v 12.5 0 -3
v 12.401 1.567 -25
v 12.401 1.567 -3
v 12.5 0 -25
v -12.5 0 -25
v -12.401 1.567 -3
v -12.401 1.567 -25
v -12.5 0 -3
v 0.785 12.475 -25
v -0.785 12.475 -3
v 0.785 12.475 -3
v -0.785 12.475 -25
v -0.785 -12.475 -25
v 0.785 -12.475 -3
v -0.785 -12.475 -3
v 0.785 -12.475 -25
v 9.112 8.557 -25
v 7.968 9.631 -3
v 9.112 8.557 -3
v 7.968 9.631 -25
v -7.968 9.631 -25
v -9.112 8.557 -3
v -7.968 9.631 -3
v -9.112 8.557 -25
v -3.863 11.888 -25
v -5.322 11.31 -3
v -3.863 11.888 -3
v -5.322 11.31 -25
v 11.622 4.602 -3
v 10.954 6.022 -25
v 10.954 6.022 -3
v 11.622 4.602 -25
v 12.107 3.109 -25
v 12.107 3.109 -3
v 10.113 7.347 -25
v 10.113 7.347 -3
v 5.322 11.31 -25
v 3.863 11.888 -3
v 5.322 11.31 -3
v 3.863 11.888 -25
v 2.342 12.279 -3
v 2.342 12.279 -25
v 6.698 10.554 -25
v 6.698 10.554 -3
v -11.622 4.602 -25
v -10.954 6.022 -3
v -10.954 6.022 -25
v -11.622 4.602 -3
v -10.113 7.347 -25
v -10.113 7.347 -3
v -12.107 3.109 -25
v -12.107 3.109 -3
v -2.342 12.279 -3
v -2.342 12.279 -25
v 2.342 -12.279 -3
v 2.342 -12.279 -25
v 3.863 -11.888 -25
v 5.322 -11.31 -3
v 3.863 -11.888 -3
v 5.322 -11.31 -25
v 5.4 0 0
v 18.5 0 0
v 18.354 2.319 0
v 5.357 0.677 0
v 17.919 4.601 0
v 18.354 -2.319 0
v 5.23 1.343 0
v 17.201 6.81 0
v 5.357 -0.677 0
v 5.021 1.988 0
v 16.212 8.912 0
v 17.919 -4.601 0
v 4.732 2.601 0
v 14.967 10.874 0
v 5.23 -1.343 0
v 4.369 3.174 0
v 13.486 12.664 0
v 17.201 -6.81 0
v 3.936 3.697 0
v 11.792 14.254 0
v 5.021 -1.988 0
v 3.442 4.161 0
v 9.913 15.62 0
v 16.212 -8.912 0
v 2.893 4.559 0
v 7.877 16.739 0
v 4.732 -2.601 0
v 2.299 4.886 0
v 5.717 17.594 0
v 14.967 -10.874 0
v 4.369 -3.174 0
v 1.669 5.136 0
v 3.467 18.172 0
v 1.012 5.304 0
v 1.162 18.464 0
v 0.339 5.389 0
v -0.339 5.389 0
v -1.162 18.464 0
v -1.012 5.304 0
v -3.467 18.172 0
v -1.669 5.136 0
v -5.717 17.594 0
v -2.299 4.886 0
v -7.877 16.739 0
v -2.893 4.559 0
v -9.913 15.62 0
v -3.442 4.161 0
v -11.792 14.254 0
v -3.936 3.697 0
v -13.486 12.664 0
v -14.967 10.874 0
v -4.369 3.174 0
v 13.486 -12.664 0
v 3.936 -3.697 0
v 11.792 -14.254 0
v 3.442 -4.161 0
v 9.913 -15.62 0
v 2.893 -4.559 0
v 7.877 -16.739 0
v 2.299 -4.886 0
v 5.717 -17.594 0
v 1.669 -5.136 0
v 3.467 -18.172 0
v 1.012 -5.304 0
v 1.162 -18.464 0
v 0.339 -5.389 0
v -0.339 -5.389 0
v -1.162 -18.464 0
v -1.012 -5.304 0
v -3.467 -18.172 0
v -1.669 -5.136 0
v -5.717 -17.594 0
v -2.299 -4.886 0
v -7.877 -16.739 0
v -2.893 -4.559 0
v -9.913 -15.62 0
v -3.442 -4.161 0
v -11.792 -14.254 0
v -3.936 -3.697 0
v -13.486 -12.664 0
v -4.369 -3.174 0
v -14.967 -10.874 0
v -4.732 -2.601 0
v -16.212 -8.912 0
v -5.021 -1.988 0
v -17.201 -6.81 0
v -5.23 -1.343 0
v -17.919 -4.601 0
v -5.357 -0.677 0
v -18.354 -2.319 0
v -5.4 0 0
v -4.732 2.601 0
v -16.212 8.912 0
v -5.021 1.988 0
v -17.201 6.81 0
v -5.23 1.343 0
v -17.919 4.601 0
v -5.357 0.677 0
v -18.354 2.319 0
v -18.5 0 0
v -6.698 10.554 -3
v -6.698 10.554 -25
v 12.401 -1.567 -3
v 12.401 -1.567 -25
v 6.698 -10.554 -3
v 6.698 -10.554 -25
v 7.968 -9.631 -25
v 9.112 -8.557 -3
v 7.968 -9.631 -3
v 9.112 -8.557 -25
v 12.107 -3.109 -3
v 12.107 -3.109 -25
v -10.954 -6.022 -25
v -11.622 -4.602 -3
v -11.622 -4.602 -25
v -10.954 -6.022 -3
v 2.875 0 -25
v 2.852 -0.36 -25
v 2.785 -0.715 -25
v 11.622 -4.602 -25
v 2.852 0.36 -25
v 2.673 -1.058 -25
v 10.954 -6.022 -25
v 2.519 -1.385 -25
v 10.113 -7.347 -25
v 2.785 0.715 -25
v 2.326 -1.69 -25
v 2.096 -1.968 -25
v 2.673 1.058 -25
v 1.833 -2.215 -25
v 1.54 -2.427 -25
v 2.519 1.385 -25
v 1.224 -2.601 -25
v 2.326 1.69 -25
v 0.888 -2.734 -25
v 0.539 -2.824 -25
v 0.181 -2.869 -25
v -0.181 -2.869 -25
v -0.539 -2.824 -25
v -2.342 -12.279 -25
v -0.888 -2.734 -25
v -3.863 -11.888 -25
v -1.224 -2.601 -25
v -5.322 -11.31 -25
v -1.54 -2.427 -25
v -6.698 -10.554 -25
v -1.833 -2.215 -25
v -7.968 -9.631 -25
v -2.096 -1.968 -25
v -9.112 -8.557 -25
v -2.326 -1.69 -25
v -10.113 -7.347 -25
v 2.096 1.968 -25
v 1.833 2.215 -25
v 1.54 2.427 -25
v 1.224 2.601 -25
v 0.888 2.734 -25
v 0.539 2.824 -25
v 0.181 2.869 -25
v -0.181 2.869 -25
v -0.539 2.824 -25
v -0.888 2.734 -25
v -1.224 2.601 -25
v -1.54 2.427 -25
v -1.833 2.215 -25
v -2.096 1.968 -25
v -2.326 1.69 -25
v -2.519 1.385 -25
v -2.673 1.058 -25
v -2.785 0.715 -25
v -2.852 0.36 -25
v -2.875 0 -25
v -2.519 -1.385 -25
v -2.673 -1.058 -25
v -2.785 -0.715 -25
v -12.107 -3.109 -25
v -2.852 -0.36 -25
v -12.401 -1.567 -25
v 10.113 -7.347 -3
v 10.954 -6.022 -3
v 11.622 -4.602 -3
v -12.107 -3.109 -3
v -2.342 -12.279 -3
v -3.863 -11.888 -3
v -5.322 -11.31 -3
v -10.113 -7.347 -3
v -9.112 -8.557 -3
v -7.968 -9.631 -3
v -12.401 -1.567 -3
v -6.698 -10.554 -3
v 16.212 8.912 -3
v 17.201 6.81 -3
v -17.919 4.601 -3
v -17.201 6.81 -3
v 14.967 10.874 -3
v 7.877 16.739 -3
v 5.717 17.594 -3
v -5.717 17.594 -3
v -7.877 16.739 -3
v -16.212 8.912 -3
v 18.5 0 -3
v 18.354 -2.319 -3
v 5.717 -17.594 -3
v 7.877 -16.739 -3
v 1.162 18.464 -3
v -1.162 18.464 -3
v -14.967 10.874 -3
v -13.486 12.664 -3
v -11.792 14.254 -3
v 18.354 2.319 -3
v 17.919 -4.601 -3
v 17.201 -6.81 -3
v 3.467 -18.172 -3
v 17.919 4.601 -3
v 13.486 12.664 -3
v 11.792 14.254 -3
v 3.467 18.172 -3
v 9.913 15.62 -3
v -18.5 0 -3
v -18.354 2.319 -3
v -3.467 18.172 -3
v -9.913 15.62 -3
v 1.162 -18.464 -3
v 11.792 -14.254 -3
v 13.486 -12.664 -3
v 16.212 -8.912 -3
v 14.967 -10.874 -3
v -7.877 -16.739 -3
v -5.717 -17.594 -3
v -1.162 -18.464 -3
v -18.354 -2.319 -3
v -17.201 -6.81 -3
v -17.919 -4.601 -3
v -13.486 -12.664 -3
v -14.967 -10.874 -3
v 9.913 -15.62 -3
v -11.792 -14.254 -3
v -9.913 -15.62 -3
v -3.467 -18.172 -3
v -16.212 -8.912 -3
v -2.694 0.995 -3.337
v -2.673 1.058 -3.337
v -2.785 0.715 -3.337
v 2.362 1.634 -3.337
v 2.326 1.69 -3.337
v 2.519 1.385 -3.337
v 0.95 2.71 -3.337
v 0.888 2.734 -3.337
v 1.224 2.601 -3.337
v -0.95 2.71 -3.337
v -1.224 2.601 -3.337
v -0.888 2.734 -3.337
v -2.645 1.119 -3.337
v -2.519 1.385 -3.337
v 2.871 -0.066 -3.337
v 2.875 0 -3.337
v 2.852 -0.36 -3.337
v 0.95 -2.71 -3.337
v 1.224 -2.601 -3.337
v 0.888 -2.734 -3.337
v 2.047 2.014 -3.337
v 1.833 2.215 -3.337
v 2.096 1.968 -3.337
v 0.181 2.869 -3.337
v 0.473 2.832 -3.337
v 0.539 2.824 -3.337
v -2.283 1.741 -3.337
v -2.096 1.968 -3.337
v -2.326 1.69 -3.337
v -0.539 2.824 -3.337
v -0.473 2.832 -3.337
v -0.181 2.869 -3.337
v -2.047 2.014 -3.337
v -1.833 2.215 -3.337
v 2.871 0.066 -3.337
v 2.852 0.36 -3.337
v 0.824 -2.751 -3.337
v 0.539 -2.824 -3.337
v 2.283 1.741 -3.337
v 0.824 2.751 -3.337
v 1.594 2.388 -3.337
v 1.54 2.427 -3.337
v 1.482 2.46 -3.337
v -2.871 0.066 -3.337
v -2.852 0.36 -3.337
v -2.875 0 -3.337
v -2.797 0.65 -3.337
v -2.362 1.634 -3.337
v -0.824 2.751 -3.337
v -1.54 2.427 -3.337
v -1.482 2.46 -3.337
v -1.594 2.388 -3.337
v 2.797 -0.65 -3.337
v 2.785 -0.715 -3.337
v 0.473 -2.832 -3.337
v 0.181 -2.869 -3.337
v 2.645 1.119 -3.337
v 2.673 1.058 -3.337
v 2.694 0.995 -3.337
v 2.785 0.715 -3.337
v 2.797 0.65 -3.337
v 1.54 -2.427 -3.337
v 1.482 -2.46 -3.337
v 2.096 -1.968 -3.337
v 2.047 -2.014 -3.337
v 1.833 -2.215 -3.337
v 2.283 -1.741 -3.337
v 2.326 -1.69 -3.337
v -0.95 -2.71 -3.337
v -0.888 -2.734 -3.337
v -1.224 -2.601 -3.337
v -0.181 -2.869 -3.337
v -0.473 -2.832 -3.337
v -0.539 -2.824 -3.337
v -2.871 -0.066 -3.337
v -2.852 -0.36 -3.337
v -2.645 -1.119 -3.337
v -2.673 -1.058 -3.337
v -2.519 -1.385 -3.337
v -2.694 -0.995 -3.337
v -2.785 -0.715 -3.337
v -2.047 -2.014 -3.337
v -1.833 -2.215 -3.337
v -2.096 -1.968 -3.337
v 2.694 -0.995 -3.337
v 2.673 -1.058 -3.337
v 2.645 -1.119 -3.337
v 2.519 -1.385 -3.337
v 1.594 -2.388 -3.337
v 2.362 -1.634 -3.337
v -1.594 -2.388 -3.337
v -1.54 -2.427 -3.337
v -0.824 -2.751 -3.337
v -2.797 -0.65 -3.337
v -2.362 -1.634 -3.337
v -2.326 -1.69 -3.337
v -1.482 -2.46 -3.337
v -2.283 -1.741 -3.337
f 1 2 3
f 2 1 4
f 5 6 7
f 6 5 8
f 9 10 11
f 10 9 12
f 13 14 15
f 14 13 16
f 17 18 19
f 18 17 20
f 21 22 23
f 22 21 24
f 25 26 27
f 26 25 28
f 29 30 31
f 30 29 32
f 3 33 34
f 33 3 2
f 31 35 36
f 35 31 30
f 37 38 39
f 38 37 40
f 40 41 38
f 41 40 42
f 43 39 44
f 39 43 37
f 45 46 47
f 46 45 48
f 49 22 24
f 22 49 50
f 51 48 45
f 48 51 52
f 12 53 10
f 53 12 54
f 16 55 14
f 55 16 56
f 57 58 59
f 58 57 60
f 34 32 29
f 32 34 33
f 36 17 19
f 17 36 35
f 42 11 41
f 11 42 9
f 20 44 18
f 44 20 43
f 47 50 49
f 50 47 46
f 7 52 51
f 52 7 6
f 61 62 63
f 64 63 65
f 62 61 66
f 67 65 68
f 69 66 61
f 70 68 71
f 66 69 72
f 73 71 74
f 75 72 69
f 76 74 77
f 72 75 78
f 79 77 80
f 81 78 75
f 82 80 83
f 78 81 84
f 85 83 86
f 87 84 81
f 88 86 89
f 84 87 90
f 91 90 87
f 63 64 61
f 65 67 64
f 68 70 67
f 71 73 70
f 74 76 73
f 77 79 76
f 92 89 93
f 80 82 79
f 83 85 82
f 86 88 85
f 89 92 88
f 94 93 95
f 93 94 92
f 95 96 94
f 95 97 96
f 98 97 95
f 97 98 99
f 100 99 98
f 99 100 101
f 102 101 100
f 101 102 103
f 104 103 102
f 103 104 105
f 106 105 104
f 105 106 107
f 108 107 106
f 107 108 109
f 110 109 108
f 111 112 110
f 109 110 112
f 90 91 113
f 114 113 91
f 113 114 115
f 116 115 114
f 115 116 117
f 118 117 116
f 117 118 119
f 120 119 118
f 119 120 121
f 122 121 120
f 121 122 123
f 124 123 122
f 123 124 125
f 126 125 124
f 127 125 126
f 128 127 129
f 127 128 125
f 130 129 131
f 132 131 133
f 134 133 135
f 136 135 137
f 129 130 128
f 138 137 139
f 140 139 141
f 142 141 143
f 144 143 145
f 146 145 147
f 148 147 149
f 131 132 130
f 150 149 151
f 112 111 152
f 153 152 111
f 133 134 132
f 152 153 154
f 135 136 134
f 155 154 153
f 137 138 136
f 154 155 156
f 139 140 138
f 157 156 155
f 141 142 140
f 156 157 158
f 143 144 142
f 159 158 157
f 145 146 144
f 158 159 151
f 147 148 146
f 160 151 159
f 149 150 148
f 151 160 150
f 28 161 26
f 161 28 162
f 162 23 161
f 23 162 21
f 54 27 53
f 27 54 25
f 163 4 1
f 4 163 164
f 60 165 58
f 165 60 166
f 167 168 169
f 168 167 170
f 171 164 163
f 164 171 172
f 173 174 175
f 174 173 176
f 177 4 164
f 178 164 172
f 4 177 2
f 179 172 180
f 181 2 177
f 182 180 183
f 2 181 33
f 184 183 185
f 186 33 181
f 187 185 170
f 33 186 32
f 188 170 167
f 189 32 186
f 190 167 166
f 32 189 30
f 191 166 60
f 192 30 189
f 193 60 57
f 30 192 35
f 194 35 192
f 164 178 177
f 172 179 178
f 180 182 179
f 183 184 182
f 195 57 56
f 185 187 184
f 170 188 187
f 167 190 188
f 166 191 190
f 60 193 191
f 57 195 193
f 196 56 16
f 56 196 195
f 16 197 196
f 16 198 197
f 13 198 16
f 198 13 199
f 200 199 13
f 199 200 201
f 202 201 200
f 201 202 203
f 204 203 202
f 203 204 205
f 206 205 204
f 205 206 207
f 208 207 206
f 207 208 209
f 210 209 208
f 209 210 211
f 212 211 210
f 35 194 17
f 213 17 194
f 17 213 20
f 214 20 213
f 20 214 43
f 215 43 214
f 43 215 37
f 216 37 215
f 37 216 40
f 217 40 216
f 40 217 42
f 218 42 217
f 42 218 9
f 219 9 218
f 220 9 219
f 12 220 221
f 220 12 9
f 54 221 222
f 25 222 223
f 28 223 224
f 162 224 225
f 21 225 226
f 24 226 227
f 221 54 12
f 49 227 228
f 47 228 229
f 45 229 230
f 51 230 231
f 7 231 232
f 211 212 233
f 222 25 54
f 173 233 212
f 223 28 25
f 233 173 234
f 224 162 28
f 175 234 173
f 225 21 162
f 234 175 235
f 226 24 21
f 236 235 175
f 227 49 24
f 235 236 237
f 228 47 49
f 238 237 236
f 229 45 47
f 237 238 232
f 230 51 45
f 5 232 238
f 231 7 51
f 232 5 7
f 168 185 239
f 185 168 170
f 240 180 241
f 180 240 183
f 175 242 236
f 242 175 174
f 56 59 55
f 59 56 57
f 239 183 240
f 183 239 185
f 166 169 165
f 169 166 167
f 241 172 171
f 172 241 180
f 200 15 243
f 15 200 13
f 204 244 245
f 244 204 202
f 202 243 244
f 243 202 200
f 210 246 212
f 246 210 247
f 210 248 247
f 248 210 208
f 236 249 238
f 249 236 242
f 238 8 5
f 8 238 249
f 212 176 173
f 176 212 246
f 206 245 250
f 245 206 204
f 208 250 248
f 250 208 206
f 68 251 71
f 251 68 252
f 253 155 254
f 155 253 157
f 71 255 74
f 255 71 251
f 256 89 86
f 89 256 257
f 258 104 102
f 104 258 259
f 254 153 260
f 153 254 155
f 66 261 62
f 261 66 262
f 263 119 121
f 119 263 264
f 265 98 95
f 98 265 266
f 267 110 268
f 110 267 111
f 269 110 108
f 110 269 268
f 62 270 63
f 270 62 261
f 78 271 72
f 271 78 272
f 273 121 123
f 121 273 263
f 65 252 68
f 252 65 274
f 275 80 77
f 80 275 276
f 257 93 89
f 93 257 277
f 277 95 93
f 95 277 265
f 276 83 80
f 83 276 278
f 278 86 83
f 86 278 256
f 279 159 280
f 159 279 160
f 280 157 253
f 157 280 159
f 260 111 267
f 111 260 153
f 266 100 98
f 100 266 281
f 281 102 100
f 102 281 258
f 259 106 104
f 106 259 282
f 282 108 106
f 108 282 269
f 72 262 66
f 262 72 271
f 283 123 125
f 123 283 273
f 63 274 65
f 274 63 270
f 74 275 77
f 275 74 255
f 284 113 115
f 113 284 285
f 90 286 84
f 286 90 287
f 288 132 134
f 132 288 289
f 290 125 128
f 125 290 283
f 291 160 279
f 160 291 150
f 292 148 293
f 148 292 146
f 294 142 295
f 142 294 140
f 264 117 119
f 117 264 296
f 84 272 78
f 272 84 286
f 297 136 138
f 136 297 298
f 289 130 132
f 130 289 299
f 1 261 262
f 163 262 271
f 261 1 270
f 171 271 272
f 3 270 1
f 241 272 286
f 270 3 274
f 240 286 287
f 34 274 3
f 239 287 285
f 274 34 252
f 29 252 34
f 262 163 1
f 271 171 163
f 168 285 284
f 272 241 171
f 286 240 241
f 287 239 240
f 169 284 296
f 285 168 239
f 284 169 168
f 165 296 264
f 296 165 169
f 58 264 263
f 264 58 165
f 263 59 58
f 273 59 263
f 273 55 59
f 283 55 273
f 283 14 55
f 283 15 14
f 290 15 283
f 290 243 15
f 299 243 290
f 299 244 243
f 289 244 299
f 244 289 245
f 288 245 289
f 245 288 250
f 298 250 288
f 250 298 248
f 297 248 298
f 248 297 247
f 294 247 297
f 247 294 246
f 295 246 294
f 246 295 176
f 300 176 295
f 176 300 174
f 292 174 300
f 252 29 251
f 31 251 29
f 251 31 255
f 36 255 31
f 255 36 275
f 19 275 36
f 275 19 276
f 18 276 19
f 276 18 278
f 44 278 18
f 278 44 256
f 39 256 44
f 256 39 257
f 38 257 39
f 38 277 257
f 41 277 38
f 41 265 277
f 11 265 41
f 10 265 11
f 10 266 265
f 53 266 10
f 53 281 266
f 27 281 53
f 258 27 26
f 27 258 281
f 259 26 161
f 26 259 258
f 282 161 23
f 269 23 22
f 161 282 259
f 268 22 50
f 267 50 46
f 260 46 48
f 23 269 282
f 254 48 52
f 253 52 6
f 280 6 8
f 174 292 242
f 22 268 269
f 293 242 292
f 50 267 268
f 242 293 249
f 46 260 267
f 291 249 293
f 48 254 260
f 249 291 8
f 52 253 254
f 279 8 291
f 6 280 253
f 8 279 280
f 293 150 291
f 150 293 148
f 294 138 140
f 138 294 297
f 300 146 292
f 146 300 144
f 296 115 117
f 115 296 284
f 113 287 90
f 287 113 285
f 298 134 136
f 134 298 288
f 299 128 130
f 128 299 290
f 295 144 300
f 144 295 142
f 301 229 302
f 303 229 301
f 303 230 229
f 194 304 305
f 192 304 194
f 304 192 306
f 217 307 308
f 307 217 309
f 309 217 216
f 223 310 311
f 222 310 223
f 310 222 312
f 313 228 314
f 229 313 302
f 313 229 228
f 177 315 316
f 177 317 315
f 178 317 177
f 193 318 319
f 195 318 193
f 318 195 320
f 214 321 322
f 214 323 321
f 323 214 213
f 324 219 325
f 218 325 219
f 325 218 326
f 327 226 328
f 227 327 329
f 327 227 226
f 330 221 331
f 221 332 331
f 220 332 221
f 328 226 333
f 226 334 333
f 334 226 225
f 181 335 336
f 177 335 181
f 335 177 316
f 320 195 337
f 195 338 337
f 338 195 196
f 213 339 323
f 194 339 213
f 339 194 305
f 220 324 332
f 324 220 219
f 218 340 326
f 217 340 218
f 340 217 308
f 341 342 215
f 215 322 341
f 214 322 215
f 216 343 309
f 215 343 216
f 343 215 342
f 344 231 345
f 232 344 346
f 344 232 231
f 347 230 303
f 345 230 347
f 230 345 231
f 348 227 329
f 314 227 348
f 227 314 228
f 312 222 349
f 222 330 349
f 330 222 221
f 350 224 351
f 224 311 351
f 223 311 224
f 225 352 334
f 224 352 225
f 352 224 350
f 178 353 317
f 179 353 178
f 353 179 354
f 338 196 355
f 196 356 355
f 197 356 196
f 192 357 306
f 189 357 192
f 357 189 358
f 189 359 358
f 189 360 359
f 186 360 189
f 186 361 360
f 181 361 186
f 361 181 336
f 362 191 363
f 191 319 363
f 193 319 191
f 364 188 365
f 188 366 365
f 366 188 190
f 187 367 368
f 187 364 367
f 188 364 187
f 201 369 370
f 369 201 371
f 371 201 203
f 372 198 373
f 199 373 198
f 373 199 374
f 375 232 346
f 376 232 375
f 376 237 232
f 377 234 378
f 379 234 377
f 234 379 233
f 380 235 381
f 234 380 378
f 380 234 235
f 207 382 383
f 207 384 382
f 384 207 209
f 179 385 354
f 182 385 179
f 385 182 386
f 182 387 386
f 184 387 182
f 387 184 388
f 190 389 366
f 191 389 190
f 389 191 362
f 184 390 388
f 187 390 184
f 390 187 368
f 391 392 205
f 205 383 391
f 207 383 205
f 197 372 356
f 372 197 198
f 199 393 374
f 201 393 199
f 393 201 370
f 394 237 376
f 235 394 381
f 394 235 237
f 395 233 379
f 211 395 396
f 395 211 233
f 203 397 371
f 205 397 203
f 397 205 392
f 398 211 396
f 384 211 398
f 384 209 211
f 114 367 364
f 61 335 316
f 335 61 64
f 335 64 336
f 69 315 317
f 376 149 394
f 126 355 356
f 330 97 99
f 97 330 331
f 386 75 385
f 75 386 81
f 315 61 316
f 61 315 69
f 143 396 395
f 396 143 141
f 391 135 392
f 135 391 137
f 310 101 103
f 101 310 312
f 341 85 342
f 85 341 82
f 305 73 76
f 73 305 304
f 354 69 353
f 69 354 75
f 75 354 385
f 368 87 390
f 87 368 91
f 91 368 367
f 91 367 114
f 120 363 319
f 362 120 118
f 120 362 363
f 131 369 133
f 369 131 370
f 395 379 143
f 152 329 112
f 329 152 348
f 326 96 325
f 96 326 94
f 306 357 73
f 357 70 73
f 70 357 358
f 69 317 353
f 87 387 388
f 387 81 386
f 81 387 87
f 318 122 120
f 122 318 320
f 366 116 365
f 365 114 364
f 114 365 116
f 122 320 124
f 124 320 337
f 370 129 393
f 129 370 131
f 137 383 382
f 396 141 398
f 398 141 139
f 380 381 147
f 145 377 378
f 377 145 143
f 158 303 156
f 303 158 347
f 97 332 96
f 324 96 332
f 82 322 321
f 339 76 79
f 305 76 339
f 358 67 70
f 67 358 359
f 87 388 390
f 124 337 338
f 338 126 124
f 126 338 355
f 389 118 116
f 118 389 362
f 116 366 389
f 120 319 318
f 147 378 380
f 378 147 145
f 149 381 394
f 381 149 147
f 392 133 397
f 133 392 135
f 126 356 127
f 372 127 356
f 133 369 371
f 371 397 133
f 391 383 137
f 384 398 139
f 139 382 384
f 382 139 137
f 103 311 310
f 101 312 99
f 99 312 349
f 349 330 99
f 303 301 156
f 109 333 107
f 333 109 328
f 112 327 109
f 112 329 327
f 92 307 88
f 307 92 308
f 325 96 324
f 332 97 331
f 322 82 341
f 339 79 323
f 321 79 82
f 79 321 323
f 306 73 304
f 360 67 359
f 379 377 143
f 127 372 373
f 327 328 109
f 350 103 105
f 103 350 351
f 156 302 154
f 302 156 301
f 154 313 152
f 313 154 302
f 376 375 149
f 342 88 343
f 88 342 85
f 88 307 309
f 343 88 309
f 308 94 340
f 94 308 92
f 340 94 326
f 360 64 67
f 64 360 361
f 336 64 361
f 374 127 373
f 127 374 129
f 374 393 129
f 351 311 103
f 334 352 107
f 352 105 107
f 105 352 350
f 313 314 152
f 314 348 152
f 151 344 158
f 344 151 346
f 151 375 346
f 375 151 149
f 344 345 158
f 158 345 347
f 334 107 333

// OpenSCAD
$fn = 50;


difference() {
	union() {
		translate(v = [0, 0, -25.0000000000]) {
			cylinder(h = 25, r = 12.5000000000);
		}
		translate(v = [0, 0, -3.0000000000]) {
			cylinder(h = 3, r = 18.5000000000);
		}
	}
	union() {
		translate(v = [0, 0, 0]) {
			rotate(a = [0, 0, 0]) {
				difference() {
					union() {
						translate(v = [0, 0, -25.0000000000]) {
							cylinder(h = 25, r = 2.6000000000);
						}
						translate(v = [0, 0, -25.0000000000]) {
							cylinder(h = 25, r = 2.8750000000);
						}
						translate(v = [0, 0, -3.7000000000]) {
							cylinder(h = 3.7000000000, r = 12.5000000000, r1 = 2.6000000000, r2 = 5.4000000000);
						}
						translate(v = [0, 0, -25.0000000000]) {
							cylinder(h = 25, r = 2.6000000000);
						}
					}
					union();
				}
			}
		}
	}
}
